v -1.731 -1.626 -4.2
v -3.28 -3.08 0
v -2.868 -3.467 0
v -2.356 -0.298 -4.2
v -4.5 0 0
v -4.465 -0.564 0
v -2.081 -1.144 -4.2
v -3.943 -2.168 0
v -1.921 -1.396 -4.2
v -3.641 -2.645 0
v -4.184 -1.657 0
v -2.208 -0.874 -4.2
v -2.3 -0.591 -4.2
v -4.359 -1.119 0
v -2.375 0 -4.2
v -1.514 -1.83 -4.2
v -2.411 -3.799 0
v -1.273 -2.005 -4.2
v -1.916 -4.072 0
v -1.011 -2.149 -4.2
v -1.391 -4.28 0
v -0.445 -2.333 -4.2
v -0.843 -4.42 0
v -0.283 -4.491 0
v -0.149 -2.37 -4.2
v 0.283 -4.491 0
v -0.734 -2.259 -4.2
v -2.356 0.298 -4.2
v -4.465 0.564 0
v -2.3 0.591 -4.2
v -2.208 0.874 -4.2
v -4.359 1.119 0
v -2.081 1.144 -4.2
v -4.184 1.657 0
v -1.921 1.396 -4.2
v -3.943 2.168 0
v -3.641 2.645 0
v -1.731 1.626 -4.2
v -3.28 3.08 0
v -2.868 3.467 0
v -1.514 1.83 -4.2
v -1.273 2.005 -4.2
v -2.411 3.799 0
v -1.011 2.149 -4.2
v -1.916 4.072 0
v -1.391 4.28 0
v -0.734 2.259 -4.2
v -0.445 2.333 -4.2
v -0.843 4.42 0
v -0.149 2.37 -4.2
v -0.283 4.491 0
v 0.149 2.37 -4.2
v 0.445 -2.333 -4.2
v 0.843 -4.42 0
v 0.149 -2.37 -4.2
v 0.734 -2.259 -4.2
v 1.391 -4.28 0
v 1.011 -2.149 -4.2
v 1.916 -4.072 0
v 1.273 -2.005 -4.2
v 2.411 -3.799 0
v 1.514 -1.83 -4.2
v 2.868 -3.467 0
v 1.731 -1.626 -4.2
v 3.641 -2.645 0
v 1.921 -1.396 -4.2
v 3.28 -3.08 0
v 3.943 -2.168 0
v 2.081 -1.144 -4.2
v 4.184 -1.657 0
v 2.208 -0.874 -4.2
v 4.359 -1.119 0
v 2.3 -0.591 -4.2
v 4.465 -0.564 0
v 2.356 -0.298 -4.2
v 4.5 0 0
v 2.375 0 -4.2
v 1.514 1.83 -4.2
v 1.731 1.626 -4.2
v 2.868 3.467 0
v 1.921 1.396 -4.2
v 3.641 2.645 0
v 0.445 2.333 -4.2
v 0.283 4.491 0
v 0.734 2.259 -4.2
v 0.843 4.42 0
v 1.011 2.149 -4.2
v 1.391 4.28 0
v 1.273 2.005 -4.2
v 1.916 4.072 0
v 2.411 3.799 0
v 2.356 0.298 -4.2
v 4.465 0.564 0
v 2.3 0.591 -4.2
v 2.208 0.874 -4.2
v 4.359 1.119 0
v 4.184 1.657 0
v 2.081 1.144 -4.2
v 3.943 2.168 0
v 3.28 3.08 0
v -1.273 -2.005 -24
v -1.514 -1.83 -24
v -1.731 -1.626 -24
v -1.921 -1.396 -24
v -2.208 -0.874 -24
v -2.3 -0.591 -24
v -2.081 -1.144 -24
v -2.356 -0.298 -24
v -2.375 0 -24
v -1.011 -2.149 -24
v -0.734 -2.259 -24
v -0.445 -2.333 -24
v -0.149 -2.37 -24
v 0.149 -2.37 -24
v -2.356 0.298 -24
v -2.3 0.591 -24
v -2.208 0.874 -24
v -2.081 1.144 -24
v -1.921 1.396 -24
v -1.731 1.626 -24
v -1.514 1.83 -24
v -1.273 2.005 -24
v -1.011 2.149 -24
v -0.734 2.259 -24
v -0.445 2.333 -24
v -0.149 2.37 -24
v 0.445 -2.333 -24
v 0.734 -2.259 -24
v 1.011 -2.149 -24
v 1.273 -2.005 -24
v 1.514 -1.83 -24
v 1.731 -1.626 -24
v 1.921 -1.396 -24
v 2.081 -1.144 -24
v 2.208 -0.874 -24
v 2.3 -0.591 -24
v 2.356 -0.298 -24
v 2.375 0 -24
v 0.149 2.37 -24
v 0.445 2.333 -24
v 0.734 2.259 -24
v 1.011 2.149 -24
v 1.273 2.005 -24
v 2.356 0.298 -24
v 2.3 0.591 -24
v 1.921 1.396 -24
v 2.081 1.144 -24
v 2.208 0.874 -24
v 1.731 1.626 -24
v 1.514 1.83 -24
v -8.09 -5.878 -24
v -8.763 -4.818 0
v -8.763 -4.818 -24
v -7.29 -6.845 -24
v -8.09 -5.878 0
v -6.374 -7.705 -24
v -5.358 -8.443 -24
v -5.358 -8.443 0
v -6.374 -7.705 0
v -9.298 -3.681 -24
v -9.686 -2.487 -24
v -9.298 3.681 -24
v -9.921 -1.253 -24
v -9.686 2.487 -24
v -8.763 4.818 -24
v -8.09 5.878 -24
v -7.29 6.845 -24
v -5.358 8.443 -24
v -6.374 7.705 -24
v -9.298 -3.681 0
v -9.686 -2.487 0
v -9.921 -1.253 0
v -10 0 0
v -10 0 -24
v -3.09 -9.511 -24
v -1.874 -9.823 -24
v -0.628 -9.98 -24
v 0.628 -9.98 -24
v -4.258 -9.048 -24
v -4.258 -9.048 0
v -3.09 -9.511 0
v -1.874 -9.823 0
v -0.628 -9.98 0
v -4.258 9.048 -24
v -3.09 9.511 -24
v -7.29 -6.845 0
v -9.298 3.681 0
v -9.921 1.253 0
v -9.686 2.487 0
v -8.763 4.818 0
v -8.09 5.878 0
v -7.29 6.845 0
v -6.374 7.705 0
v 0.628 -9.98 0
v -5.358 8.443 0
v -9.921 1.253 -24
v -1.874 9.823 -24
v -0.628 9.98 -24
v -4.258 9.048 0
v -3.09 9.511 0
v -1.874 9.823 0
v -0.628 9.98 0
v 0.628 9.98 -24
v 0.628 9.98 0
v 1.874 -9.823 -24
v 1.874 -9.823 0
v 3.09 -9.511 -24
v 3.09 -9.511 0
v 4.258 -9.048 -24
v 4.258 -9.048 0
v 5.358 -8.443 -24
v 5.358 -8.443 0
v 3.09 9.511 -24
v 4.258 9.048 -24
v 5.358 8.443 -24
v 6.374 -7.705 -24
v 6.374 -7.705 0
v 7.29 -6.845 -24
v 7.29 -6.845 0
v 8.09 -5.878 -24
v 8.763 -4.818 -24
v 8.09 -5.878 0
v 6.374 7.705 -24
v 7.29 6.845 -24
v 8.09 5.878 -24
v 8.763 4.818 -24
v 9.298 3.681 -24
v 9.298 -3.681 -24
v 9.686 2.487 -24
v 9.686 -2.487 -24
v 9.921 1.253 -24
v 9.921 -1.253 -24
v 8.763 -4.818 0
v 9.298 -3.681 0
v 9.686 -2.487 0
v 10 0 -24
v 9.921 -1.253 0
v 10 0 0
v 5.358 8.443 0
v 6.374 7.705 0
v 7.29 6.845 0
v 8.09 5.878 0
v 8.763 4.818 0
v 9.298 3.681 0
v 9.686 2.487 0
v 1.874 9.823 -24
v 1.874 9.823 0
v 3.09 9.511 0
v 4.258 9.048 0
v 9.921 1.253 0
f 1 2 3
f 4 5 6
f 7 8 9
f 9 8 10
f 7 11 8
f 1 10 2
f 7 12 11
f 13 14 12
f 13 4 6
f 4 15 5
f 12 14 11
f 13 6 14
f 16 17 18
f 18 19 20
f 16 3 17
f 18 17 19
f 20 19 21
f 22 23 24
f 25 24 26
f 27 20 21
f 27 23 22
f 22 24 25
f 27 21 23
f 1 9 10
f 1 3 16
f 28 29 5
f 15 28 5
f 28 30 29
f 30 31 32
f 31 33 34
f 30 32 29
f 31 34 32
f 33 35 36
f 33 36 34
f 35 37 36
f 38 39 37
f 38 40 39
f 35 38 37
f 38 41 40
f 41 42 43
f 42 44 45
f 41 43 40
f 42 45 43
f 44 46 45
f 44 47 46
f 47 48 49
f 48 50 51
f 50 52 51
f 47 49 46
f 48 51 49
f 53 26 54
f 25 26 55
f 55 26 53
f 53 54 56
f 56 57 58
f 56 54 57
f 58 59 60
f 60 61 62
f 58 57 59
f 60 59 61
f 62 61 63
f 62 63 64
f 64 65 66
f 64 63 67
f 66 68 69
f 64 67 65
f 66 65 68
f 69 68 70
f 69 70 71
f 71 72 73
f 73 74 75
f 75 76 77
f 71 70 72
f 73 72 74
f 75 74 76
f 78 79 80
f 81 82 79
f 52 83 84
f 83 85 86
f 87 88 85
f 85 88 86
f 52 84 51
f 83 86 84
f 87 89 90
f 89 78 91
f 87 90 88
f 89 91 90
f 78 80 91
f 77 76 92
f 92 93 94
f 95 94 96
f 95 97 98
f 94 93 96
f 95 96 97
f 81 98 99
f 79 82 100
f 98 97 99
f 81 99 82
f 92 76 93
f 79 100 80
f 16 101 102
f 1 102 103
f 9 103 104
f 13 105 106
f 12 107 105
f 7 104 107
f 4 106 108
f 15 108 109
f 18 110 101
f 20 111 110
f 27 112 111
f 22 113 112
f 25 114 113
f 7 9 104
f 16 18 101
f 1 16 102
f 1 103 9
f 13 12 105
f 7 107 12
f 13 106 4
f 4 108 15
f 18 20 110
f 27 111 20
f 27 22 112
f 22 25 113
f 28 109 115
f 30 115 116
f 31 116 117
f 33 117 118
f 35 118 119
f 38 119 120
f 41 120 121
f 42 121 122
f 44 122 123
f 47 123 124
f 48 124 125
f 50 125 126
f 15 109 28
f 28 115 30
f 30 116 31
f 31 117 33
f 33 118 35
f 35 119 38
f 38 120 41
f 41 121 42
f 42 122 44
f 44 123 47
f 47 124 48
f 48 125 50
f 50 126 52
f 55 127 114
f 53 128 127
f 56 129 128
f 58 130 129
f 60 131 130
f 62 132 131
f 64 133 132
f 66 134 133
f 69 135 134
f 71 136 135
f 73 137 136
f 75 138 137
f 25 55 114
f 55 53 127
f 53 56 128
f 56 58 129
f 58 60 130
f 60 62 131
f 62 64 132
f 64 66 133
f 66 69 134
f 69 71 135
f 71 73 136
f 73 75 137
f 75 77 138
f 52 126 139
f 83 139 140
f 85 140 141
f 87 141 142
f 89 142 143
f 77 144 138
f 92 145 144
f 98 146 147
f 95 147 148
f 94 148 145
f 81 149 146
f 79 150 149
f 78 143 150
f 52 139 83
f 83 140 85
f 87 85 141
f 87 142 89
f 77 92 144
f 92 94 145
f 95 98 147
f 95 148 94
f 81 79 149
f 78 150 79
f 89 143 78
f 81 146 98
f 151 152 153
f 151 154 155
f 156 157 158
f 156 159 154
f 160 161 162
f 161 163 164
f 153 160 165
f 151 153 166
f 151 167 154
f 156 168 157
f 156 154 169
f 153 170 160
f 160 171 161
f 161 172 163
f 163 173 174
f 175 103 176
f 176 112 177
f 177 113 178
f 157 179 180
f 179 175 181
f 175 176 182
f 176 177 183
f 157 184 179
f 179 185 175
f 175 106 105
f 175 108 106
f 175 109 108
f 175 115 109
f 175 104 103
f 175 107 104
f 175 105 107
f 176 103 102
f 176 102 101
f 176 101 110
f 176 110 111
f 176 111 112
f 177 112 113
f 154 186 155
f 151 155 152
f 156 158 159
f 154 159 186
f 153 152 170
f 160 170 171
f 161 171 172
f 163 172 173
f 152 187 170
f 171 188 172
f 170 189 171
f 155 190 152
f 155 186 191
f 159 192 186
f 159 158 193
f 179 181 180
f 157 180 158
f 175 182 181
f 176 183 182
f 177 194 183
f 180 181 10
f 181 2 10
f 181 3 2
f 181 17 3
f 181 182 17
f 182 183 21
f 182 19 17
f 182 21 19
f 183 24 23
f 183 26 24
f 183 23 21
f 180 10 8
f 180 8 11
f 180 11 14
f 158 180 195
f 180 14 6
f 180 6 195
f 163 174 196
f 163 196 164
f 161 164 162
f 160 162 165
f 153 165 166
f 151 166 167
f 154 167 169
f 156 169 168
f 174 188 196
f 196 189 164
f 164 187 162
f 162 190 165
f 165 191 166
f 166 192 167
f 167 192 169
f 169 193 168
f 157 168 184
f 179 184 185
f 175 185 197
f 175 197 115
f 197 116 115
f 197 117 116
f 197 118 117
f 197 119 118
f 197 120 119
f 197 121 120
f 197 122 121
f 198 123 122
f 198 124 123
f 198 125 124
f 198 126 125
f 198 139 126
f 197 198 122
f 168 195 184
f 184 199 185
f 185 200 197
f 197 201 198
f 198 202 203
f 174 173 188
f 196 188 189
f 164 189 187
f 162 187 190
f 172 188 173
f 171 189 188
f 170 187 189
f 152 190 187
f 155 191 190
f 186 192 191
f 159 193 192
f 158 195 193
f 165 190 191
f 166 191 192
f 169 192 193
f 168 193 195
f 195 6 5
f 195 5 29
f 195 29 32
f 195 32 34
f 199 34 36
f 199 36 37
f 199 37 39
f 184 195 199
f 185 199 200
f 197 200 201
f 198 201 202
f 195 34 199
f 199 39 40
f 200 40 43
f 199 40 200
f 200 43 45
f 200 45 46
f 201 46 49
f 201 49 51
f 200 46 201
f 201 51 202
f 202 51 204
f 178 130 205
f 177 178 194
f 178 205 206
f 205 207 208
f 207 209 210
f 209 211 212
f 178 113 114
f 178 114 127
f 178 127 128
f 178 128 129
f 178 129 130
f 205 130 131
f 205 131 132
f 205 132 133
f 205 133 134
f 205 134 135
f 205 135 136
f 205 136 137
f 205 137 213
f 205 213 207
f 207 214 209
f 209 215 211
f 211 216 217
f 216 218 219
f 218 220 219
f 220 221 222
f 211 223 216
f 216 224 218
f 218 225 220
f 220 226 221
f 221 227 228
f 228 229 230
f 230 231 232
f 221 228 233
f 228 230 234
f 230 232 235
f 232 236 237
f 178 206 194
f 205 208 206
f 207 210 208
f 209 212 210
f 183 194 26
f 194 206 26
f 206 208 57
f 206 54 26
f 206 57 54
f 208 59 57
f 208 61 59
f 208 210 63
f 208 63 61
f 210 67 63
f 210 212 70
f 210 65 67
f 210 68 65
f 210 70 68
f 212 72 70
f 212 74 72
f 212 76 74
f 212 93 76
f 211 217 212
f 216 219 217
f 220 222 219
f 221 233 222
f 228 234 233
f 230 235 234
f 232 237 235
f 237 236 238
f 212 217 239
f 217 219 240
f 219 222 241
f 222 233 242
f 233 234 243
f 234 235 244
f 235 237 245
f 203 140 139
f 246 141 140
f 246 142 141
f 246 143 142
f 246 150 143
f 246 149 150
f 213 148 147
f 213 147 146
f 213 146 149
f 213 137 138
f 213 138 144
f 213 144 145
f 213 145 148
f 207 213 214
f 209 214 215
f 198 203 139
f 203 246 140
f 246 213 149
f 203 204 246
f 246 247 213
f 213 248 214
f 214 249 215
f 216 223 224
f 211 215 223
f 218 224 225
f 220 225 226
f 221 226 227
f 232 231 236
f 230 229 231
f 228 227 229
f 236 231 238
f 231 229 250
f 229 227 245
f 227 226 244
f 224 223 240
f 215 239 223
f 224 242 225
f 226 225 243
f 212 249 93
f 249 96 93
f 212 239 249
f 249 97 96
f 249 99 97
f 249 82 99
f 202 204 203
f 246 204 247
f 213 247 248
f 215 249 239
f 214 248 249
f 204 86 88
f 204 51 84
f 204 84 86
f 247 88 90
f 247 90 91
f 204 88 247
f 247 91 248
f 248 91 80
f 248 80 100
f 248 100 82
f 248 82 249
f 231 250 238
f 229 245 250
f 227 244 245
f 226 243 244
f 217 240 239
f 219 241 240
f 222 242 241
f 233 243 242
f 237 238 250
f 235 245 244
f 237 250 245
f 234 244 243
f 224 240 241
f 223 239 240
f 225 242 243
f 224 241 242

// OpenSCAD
$fn = 50;


difference() {
	union() {
		translate(v = [0, 0, -24.0000000000]) {
			cylinder(h = 24, r = 10.0000000000);
		}
	}
	union() {
		translate(v = [0, 0, 0]) {
			rotate(a = [0, 0, 0]) {
				difference() {
					union() {
						translate(v = [0, 0, -27.0000000000]) {
							cylinder(h = 27, r = 2.2500000000);
						}
						translate(v = [0, 0, -4.2000000000]) {
							cylinder(h = 4.2000000000, r1 = 2.3750000000, r2 = 4.5000000000);
						}
						translate(v = [0, 0, -27.0000000000]) {
							cylinder(h = 27, r = 2.3750000000);
						}
						translate(v = [0, 0, -27.0000000000]) {
							cylinder(h = 27, r = 2.2500000000);
						}
					}
					union();
				}
			}
		}
	}
}
